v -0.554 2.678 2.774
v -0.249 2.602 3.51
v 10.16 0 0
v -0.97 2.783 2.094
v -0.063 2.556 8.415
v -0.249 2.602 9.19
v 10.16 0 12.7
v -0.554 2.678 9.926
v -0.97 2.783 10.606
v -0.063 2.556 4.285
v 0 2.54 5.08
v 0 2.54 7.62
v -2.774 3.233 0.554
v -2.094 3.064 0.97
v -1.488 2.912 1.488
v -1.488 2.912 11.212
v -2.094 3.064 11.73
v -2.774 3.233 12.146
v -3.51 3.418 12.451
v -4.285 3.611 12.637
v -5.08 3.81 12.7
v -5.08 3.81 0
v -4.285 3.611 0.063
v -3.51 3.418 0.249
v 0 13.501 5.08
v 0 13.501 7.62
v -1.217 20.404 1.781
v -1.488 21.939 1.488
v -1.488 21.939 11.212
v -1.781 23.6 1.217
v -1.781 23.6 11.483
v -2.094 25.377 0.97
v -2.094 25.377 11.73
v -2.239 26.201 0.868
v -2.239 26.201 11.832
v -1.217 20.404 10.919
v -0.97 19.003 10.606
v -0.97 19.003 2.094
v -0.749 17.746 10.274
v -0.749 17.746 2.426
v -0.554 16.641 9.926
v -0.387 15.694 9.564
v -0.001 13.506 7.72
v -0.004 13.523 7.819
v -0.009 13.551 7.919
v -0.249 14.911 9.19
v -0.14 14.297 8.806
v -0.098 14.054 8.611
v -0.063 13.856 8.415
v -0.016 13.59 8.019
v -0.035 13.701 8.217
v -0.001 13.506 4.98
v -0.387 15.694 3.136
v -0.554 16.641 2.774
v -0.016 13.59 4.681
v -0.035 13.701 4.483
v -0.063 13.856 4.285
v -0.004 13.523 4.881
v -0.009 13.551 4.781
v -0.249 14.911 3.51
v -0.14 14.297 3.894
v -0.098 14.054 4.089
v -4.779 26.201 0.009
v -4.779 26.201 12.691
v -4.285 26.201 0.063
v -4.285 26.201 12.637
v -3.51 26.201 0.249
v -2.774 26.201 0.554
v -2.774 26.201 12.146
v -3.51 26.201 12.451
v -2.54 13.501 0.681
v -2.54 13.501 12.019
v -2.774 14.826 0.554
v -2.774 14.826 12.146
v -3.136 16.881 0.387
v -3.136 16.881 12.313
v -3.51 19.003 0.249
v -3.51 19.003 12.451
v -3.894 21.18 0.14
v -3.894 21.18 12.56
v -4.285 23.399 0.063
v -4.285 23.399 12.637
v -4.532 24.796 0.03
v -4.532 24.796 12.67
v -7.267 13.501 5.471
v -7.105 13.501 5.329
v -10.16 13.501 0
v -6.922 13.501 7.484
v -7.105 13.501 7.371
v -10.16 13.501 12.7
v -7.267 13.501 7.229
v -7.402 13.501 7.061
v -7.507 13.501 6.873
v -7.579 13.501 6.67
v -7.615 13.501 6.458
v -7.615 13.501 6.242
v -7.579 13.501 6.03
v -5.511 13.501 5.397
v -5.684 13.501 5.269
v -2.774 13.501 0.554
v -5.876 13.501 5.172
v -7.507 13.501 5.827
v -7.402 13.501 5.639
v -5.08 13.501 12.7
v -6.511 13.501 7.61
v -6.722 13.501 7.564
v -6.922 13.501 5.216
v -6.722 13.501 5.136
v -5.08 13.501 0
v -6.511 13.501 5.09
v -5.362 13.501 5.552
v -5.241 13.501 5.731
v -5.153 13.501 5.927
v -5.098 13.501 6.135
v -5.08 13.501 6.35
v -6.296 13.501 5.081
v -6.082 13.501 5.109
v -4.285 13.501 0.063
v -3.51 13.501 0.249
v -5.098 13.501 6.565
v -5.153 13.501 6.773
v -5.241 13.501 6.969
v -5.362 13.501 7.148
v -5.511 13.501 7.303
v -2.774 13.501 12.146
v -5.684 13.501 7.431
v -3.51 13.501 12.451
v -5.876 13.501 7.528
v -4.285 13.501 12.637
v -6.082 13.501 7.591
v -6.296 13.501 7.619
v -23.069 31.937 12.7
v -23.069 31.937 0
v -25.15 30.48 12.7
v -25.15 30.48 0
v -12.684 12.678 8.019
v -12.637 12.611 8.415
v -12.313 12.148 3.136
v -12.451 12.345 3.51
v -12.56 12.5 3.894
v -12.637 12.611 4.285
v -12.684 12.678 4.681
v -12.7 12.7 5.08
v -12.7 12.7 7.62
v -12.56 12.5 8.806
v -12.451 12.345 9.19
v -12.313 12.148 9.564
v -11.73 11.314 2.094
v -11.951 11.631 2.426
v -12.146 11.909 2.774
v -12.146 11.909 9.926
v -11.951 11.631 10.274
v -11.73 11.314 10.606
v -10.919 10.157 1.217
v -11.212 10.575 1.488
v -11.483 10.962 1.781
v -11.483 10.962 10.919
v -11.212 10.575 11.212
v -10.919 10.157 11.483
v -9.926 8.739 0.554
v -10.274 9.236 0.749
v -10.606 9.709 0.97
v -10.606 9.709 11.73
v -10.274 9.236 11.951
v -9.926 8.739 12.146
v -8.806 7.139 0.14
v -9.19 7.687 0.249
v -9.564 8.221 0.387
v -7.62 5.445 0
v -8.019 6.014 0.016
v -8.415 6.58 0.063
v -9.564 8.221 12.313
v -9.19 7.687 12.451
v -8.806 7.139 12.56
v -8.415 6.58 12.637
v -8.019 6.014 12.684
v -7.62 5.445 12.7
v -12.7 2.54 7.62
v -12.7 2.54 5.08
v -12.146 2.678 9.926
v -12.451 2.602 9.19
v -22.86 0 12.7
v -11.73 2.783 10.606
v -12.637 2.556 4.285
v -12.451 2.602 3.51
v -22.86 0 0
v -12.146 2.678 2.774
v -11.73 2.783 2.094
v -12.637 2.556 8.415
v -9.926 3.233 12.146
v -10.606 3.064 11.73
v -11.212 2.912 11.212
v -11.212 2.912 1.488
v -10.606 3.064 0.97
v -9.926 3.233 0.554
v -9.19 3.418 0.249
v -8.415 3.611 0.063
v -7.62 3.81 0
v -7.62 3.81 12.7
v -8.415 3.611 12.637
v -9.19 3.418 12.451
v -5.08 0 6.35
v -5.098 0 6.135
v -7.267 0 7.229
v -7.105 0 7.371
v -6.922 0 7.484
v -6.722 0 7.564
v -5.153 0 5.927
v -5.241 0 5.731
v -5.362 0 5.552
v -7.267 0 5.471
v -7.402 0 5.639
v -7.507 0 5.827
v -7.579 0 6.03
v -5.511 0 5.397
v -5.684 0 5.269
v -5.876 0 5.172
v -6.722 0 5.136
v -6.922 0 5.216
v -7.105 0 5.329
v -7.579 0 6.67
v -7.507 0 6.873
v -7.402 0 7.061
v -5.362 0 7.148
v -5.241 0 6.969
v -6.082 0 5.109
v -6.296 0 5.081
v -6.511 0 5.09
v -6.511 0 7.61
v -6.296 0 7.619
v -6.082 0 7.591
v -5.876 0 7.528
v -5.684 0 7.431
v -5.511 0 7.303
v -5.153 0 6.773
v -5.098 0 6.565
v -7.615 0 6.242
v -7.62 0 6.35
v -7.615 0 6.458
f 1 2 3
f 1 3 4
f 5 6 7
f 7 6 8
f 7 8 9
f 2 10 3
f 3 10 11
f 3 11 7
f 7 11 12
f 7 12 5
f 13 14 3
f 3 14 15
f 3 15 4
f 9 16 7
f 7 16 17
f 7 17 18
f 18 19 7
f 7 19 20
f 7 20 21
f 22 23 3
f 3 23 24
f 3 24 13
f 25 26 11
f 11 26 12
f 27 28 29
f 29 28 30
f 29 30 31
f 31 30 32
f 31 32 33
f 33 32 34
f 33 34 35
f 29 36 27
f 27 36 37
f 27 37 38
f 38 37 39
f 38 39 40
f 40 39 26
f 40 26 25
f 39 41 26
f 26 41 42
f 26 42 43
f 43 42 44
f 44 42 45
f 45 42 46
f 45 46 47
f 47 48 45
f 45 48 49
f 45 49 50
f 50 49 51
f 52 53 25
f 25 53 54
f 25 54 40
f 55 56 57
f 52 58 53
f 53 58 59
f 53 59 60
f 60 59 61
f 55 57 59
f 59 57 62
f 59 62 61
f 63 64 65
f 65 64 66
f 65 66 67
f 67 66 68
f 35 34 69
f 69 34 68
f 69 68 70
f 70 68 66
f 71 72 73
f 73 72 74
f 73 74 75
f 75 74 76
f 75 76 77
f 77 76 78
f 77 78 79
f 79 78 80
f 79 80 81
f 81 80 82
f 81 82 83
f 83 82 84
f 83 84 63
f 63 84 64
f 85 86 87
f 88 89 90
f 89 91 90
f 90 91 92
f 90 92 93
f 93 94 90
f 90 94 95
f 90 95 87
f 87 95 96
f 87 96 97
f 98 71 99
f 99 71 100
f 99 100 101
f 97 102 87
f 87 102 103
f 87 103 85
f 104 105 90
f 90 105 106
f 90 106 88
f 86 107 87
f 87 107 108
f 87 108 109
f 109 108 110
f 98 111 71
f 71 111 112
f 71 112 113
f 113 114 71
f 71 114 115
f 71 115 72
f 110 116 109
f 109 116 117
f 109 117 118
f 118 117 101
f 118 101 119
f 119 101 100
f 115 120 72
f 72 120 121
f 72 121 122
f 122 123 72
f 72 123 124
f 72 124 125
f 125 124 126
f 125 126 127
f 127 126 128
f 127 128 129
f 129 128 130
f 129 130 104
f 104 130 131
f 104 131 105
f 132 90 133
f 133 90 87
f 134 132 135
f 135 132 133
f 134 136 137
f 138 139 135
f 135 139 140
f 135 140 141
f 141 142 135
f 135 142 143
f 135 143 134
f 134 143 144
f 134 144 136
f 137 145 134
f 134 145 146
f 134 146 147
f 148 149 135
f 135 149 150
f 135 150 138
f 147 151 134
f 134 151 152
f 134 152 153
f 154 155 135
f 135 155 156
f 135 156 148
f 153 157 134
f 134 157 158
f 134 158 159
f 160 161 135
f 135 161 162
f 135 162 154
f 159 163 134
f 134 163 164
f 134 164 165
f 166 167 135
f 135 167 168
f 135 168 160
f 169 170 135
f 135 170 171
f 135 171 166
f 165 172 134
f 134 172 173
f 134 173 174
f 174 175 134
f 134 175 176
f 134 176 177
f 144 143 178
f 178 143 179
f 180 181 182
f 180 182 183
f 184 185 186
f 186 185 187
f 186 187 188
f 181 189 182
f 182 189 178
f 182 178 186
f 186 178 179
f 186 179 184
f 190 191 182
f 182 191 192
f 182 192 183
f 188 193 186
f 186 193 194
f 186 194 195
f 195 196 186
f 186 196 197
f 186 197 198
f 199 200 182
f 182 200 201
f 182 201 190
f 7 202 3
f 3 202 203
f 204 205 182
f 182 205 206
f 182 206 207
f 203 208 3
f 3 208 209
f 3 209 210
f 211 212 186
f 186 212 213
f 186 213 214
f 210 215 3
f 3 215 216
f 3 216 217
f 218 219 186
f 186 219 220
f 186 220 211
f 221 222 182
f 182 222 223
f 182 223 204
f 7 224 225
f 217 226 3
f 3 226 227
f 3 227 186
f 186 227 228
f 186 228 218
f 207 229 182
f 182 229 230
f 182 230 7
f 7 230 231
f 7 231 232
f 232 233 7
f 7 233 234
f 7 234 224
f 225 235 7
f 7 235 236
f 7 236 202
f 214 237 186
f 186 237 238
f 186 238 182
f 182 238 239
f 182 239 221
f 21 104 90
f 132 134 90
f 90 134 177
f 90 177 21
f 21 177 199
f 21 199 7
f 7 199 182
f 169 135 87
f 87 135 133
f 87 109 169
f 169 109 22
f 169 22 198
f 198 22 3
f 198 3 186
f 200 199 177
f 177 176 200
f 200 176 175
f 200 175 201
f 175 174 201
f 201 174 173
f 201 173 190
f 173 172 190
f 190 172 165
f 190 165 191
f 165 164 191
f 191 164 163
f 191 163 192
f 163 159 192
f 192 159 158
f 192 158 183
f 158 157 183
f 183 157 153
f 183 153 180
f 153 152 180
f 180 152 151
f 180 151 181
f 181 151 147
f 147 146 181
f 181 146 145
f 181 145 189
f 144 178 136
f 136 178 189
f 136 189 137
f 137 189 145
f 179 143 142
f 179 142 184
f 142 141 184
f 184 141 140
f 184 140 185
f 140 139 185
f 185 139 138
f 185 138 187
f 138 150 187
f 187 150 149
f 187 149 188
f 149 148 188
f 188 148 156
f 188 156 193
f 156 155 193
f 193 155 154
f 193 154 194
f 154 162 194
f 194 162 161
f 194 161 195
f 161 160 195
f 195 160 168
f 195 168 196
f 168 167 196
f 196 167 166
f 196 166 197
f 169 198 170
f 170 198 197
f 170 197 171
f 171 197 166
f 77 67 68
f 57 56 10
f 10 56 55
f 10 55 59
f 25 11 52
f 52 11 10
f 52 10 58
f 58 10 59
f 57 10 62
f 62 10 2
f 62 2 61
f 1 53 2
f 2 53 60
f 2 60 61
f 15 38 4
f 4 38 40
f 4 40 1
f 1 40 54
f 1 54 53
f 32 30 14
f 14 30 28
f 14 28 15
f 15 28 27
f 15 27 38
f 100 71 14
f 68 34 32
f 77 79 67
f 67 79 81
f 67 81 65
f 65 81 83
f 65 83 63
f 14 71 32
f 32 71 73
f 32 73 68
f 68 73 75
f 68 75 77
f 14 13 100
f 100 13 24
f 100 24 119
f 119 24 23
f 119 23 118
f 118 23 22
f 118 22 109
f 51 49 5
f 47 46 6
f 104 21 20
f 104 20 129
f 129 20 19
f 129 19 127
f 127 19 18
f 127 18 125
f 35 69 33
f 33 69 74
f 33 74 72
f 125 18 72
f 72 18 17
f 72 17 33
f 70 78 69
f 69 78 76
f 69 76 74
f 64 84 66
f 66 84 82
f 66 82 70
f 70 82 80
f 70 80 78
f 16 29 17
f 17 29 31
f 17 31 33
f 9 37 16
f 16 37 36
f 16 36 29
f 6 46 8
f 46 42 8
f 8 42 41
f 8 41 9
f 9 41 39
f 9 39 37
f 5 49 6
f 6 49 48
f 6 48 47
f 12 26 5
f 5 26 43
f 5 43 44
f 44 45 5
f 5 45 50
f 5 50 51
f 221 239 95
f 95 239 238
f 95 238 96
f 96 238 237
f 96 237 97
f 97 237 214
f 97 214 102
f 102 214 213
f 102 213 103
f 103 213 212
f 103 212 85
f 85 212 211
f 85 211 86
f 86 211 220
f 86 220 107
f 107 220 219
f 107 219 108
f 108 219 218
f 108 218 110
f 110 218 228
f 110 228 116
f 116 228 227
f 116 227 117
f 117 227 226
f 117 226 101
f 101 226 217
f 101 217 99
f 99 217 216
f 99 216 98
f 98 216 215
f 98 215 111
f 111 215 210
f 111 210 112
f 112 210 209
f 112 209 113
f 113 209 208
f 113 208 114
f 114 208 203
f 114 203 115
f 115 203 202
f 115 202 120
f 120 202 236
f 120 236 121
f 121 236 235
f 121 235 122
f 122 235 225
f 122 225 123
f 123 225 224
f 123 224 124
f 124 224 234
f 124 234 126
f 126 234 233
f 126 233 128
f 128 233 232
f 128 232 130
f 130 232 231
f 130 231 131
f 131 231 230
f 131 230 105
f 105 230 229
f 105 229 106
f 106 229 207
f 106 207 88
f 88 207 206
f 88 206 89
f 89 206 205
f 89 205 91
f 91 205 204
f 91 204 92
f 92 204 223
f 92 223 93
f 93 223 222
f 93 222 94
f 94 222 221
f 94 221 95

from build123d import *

# Parameters (mm, degrees)
BOSS_EXTRUDE1_DEPTH     = 12.7
FILLET2_R               = 5.08
SKETCH5_R               = 1.27
CUT_EXTRUDE1_DEPTH      = 1
CUT_EXTRUDE1_DEPTH_BACK = 32.936884148


with BuildPart() as part:
    # Sketch2 → Boss-Extrude1 (new body)
    with BuildSketch(Plane.XY):
        Polygon((-10.16, 13.500858924), (-2.54, 13.500858924), (-4.779352655, 26.200858924), (-2.239352655, 26.200858924), (0, 13.500858924), (0, 2.54), (10.16, 0), (0, 0), (-12.7, 0), (-22.86, 0), (-12.7, 2.54), (-12.7, 12.7), (-25.149690029, 30.48), (-23.069043837, 31.936884148), align=None)
    extrude(amount=BOSS_EXTRUDE1_DEPTH)

    # Fillet2
    fillet2_edges = [part.edges().sort_by_distance(p)[0] for p in [
        (-12.7, 7.62, 12.7),
        (-12.7, 7.62, 0),
        (0, 8.020429462, 0),
        (0, 8.020429462, 12.7),
    ]]
    fillet(fillet2_edges, radius=FILLET2_R)

    # Sketch5 → Cut-Extrude1 (cut, two sides)
    with BuildSketch(Plane.XZ) as cut_extrude1_sk:
        with Locations((-6.35, 6.35)):
            Circle(SKETCH5_R)
    extrude(amount=CUT_EXTRUDE1_DEPTH, mode=Mode.SUBTRACT)
    extrude(cut_extrude1_sk.sketch, amount=-CUT_EXTRUDE1_DEPTH_BACK, mode=Mode.SUBTRACT)


solid = part.part
